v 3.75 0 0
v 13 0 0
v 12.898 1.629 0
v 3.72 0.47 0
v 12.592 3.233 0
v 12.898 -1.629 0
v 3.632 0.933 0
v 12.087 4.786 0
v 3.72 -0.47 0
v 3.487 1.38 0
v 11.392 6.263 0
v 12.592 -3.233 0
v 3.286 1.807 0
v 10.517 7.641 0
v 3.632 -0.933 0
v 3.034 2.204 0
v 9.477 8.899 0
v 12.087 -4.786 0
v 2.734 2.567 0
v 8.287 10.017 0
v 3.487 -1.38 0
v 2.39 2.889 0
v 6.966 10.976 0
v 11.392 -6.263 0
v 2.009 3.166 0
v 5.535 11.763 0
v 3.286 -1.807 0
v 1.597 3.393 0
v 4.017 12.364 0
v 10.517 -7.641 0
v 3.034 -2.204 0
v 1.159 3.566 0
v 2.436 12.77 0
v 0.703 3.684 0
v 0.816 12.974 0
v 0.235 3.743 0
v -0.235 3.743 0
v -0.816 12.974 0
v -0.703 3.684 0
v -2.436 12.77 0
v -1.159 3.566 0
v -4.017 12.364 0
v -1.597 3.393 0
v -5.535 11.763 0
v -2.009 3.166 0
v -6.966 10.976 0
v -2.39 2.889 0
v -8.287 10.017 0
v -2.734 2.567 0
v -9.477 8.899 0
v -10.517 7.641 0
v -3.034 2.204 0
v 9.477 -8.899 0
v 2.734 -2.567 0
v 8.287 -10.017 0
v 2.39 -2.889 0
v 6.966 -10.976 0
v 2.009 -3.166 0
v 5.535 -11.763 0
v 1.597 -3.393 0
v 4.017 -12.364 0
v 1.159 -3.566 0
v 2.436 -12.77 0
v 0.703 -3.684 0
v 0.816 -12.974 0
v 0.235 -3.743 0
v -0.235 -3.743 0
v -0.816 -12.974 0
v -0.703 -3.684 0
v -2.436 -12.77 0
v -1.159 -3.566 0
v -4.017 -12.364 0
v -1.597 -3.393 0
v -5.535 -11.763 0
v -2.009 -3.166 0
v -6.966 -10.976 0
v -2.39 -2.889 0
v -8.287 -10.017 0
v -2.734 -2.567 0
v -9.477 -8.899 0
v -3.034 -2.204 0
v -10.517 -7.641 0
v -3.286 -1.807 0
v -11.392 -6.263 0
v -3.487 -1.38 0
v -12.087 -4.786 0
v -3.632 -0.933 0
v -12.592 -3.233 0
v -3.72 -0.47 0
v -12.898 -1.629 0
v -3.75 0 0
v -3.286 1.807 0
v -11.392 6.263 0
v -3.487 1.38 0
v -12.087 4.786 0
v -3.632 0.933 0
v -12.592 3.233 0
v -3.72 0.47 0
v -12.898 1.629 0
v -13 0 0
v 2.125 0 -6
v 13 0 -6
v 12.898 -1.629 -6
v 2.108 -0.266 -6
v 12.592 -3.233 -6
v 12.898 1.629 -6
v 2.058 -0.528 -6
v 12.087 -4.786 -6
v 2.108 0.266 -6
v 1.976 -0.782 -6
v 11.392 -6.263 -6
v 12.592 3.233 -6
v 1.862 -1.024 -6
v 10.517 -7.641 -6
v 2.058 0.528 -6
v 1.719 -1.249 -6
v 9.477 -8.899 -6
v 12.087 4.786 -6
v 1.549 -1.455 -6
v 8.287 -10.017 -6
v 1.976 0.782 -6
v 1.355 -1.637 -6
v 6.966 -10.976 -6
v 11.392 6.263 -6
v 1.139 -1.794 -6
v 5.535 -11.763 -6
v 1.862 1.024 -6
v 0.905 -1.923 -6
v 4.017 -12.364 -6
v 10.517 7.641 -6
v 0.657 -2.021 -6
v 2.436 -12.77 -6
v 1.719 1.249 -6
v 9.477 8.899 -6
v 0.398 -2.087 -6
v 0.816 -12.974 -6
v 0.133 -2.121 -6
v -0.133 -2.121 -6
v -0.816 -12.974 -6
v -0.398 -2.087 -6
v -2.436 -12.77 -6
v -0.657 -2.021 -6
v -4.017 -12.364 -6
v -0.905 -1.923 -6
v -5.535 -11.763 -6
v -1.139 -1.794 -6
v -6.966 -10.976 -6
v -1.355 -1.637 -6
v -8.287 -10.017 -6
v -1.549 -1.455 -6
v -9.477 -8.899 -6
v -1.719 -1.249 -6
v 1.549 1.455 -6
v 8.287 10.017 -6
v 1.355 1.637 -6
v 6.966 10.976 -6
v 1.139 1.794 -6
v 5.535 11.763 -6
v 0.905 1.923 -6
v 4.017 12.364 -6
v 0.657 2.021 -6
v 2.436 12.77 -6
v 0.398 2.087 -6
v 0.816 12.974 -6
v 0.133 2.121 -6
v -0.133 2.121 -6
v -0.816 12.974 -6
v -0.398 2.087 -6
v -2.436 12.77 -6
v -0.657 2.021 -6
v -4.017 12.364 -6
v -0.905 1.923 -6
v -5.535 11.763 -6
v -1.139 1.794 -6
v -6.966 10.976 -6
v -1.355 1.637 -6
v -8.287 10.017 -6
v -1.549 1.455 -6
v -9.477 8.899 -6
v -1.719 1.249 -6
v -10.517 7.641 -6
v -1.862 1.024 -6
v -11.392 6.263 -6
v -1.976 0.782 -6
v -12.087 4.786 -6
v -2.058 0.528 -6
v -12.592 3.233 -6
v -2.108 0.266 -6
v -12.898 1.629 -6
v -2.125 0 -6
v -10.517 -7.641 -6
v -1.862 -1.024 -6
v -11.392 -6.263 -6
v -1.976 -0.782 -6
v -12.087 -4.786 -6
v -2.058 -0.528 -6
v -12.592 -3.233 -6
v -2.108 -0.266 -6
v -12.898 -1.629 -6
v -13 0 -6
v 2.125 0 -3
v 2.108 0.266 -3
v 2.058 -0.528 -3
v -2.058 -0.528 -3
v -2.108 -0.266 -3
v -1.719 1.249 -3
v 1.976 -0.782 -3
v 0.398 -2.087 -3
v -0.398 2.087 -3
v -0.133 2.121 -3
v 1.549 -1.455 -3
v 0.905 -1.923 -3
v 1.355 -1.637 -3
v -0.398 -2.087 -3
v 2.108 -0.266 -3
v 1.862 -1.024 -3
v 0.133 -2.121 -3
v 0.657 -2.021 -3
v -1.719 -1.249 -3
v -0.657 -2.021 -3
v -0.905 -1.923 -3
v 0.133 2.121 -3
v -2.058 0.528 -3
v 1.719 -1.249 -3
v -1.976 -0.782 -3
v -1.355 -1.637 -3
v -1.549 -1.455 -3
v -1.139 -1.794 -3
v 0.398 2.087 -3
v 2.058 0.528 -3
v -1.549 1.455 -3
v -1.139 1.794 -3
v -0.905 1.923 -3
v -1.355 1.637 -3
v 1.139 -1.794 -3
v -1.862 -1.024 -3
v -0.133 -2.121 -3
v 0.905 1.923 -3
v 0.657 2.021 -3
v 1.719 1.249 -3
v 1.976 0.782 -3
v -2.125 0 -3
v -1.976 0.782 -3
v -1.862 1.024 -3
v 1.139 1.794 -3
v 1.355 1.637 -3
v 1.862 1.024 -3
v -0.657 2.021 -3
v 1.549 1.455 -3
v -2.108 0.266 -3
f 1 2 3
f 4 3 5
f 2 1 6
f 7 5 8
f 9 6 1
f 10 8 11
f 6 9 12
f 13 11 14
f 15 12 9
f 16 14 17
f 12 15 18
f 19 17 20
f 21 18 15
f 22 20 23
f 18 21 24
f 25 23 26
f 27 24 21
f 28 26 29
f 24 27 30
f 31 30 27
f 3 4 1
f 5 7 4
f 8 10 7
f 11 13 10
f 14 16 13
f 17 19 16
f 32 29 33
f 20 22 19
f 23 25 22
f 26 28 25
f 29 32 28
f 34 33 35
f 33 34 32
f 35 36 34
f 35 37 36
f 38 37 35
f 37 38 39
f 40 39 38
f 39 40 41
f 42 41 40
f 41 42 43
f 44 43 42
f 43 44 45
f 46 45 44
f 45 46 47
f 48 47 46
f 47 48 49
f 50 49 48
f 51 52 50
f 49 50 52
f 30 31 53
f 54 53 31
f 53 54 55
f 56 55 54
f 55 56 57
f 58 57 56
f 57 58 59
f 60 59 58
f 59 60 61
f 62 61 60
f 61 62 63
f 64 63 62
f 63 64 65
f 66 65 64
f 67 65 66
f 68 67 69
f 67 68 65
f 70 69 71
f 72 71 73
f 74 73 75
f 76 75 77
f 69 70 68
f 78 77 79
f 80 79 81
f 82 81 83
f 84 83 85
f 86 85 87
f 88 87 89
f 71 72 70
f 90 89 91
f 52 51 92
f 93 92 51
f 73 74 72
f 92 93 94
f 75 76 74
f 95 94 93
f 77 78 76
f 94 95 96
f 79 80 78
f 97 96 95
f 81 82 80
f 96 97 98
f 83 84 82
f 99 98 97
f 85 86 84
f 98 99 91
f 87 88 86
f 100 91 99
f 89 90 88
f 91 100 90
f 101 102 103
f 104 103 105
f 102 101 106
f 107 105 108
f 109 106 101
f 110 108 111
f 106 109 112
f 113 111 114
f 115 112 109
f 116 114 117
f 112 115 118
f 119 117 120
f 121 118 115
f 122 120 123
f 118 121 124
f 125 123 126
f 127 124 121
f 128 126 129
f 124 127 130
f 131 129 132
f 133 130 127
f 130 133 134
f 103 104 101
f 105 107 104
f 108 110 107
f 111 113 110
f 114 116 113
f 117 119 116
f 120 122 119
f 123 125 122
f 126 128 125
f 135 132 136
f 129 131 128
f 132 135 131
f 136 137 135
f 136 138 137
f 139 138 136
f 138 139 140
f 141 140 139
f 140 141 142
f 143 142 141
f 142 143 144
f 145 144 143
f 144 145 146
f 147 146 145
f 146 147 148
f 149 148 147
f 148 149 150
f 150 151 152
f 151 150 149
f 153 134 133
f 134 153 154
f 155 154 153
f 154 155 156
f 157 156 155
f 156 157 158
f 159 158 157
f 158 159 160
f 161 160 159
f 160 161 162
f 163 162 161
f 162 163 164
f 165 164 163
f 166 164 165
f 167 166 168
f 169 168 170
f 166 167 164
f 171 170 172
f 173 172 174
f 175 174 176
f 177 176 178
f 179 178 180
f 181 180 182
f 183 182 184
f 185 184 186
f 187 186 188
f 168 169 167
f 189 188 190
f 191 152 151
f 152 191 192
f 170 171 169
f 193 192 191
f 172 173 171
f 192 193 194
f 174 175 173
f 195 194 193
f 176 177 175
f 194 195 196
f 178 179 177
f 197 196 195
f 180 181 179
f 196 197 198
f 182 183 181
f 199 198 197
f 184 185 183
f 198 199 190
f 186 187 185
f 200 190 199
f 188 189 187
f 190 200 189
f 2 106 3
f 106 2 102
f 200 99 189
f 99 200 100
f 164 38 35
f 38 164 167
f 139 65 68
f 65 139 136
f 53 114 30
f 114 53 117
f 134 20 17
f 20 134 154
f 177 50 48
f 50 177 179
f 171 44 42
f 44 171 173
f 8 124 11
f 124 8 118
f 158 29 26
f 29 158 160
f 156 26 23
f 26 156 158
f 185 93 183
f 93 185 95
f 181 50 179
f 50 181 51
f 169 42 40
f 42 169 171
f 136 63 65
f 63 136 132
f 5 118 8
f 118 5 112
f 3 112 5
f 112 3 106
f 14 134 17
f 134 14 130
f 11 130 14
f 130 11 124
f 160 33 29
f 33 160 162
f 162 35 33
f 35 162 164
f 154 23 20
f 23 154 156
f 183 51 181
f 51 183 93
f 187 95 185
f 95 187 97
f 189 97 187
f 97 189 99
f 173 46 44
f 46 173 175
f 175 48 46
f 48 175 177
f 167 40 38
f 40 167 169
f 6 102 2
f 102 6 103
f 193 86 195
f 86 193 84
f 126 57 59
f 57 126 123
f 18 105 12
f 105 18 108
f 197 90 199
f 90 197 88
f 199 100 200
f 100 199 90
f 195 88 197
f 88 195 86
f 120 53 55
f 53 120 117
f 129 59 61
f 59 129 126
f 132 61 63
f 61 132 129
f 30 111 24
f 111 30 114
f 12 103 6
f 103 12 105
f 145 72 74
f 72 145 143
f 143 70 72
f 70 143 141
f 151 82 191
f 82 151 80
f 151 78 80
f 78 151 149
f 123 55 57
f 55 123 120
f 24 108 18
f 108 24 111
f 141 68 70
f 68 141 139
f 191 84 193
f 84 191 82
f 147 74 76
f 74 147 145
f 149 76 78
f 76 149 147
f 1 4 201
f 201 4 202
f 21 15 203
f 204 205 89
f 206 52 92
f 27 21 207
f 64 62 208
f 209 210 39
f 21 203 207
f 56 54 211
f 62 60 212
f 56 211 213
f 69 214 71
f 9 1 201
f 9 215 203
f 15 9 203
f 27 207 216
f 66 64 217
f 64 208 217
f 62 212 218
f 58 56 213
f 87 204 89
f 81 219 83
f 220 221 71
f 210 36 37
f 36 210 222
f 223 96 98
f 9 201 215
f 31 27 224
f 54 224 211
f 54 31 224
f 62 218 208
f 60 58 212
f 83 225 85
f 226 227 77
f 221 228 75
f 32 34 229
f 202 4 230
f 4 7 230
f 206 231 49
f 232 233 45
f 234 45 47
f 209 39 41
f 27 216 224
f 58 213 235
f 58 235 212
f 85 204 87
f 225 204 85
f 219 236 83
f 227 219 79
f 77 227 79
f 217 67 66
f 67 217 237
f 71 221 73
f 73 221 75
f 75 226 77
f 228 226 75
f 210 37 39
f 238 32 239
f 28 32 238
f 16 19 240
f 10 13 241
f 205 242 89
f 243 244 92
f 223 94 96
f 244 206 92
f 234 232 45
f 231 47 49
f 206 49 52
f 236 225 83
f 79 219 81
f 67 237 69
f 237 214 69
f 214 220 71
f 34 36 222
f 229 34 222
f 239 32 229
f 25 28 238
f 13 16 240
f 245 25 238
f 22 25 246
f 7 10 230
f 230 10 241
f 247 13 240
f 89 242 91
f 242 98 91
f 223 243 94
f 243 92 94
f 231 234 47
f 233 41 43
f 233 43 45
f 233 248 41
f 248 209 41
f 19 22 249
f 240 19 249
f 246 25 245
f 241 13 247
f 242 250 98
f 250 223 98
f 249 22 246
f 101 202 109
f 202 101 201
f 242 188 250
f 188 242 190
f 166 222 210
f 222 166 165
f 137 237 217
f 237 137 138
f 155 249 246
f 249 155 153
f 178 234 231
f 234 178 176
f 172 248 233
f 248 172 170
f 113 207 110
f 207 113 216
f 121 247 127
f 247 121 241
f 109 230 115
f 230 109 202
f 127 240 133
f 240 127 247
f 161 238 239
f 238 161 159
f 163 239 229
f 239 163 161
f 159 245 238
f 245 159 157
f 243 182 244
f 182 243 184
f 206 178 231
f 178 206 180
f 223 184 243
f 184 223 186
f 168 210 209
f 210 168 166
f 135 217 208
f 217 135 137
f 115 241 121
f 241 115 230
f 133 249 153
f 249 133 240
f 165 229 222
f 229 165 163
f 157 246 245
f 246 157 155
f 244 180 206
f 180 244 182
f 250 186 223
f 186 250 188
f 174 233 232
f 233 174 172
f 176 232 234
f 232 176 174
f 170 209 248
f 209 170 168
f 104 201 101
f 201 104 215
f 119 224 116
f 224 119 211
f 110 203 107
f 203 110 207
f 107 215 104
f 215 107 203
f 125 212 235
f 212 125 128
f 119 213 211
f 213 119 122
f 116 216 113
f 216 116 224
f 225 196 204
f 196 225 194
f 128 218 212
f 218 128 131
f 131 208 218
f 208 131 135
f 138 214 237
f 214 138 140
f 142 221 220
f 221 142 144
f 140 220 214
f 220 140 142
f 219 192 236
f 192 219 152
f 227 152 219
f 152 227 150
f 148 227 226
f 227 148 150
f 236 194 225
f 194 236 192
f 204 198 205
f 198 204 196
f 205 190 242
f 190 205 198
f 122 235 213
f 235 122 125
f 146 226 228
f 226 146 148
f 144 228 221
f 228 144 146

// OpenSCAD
$fn = 50;


difference() {
	union() {
		translate(v = [0, 0, -6.0000000000]) {
			cylinder(h = 6, r = 10.0000000000);
		}
		translate(v = [0, 0, -6.0000000000]) {
			cylinder(h = 6, r = 13.0000000000);
		}
	}
	union() {
		translate(v = [0, 0, 0]) {
			rotate(a = [0, 0, 0]) {
				difference() {
					union() {
						#translate(v = [0, 0, -6.0000000000]) {
							cylinder(h = 6, r = 2.0000000000);
						}
						#translate(v = [0, 0, -3]) {
							cylinder(h = 3, r1 = 2.1250000000, r2 = 3.7500000000);
						}
						#translate(v = [0, 0, -6.0000000000]) {
							cylinder(h = 6, r = 2.1250000000);
						}
						#translate(v = [0, 0, -6.0000000000]) {
							cylinder(h = 6, r = 2.0000000000);
						}
					}
					union();
				}
			}
		}
	}
}
